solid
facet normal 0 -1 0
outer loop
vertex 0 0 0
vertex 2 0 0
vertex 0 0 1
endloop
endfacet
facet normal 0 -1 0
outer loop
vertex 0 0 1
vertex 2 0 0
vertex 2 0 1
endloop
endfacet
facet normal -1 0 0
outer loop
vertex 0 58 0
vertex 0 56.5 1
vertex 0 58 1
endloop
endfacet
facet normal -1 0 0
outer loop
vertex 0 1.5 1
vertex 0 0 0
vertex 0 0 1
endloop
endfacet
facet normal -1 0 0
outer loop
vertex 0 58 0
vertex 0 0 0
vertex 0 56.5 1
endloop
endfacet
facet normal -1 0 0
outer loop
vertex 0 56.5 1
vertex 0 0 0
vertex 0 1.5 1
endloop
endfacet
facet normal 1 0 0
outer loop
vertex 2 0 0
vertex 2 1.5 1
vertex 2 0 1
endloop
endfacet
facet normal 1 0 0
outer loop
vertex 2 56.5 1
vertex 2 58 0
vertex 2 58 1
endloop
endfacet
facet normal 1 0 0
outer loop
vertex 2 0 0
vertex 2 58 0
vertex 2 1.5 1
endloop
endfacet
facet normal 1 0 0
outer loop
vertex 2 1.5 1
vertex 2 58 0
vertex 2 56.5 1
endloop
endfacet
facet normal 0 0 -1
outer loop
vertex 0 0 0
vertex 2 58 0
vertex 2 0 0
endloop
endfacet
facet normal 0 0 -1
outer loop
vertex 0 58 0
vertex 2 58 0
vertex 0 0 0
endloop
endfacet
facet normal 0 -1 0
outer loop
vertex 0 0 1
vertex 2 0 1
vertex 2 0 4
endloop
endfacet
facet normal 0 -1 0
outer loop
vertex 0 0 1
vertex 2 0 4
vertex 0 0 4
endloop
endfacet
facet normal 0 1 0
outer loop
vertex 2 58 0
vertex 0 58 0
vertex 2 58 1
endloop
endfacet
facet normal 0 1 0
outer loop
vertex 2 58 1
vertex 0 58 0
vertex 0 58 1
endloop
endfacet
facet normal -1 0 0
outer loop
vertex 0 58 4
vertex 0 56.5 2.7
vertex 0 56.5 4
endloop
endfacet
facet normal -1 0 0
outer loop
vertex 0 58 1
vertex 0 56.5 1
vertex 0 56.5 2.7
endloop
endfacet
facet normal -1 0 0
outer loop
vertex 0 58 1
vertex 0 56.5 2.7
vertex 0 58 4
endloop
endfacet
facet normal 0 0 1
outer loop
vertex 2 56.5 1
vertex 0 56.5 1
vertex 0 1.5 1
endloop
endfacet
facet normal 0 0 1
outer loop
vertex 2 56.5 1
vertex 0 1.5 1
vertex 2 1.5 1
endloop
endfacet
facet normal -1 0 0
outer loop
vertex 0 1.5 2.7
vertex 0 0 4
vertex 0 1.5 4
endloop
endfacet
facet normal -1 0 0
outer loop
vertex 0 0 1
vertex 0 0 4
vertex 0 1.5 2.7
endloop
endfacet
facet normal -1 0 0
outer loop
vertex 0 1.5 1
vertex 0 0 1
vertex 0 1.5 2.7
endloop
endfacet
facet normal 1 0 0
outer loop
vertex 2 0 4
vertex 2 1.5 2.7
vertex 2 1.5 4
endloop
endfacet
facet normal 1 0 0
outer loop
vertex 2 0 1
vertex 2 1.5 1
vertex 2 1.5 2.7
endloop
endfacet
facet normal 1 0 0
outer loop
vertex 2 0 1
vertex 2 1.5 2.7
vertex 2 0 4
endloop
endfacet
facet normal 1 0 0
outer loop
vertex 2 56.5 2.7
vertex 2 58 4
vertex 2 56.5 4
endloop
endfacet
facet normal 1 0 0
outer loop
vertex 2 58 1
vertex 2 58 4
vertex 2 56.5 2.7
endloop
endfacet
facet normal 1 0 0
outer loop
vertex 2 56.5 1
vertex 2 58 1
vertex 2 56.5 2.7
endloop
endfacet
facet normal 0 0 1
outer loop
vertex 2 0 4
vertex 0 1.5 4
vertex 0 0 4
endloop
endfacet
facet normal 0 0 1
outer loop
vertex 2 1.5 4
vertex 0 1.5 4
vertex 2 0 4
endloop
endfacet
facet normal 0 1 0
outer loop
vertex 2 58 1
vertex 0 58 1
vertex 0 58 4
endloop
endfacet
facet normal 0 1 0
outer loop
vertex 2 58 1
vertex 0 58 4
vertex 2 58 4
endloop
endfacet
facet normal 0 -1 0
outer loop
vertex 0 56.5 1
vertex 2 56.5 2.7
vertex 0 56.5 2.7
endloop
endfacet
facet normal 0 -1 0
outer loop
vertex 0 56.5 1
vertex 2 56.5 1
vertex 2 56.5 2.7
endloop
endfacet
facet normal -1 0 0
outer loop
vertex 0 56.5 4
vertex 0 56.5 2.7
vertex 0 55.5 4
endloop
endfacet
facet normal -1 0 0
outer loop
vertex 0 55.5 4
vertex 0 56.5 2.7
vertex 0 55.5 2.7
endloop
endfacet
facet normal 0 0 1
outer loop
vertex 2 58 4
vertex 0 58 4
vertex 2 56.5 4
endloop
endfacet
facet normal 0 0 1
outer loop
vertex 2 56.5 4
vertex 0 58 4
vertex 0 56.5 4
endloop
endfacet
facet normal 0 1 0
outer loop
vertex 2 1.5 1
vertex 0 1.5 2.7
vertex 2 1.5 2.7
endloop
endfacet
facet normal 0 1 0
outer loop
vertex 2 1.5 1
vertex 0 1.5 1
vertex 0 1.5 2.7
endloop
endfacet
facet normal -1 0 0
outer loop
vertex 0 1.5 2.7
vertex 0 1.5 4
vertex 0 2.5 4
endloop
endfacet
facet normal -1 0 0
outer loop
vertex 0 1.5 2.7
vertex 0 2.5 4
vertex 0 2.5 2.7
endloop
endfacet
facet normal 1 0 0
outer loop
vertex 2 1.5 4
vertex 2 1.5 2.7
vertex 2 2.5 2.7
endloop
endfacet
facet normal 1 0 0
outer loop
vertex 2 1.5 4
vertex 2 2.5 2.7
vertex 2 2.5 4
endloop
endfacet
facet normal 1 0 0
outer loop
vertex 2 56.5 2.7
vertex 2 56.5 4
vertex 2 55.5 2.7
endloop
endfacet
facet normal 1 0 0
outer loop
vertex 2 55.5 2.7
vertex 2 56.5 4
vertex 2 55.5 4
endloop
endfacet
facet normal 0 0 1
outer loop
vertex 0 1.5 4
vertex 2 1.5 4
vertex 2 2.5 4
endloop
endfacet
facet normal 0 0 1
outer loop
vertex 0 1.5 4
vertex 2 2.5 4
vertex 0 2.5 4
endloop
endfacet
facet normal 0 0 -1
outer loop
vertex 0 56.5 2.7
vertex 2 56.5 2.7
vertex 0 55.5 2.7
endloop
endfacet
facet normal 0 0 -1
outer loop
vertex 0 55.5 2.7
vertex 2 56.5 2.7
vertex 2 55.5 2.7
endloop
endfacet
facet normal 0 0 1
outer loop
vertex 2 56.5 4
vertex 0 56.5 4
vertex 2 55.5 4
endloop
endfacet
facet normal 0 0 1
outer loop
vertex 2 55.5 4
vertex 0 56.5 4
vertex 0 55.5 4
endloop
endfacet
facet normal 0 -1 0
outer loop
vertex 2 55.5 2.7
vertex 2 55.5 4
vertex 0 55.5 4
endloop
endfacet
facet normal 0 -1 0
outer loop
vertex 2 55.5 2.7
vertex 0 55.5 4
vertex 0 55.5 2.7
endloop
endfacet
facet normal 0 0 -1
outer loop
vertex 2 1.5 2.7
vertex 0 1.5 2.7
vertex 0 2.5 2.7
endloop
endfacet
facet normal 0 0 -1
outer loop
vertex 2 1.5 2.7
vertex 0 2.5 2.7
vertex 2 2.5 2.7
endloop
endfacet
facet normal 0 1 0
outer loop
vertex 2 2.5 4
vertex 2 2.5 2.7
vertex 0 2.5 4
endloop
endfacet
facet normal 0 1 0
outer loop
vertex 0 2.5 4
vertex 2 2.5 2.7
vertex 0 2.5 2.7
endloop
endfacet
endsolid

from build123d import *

# Parameters (mm, degrees)
SKETCH_W     = 2
SKETCH_H     = 58
PAD_DEPTH    = 1
SKETCH001_W  = 2
SKETCH001_H  = 1.5
PAD001_DEPTH = 3
SKETCH002_W  = 2
SKETCH002_H  = 1.3
PAD002_DEPTH = 1
SKETCH003_W  = 2
SKETCH003_H  = 1.3
PAD003_DEPTH = 1


with BuildPart() as part:
    # Sketch → Pad (new body)
    with BuildSketch(Plane.XY):
        with Locations((1, 29)):
            Rectangle(SKETCH_W, SKETCH_H)
    extrude(amount=PAD_DEPTH)

    # Sketch001 (on Face6 of Pad) → Pad001 (join)
    with BuildSketch(Plane.XY.offset(1)):
        with Locations((1, 0.75)):
            Rectangle(SKETCH001_W, SKETCH001_H)
        with Locations((1, 57.25)):
            Rectangle(SKETCH001_W, SKETCH001_H)
    extrude(amount=PAD001_DEPTH)

    # Sketch002 (on Face14 of Pad001) → Pad002 (join)
    with BuildSketch(Plane.XZ.offset(-56.5)):
        with Locations((1, 3.35)):
            Rectangle(SKETCH002_W, SKETCH002_H)
    extrude(amount=PAD002_DEPTH)

    # Sketch003 (on Face17 of Pad002) → Pad003 (join)
    with BuildSketch(Plane(origin=(0, 1.5, 0), x_dir=(-1, 0, 0), z_dir=(0, 1, 0))):
        with Locations((-1, 3.35)):
            Rectangle(SKETCH003_W, SKETCH003_H)
    extrude(amount=PAD003_DEPTH)


solid = part.part
